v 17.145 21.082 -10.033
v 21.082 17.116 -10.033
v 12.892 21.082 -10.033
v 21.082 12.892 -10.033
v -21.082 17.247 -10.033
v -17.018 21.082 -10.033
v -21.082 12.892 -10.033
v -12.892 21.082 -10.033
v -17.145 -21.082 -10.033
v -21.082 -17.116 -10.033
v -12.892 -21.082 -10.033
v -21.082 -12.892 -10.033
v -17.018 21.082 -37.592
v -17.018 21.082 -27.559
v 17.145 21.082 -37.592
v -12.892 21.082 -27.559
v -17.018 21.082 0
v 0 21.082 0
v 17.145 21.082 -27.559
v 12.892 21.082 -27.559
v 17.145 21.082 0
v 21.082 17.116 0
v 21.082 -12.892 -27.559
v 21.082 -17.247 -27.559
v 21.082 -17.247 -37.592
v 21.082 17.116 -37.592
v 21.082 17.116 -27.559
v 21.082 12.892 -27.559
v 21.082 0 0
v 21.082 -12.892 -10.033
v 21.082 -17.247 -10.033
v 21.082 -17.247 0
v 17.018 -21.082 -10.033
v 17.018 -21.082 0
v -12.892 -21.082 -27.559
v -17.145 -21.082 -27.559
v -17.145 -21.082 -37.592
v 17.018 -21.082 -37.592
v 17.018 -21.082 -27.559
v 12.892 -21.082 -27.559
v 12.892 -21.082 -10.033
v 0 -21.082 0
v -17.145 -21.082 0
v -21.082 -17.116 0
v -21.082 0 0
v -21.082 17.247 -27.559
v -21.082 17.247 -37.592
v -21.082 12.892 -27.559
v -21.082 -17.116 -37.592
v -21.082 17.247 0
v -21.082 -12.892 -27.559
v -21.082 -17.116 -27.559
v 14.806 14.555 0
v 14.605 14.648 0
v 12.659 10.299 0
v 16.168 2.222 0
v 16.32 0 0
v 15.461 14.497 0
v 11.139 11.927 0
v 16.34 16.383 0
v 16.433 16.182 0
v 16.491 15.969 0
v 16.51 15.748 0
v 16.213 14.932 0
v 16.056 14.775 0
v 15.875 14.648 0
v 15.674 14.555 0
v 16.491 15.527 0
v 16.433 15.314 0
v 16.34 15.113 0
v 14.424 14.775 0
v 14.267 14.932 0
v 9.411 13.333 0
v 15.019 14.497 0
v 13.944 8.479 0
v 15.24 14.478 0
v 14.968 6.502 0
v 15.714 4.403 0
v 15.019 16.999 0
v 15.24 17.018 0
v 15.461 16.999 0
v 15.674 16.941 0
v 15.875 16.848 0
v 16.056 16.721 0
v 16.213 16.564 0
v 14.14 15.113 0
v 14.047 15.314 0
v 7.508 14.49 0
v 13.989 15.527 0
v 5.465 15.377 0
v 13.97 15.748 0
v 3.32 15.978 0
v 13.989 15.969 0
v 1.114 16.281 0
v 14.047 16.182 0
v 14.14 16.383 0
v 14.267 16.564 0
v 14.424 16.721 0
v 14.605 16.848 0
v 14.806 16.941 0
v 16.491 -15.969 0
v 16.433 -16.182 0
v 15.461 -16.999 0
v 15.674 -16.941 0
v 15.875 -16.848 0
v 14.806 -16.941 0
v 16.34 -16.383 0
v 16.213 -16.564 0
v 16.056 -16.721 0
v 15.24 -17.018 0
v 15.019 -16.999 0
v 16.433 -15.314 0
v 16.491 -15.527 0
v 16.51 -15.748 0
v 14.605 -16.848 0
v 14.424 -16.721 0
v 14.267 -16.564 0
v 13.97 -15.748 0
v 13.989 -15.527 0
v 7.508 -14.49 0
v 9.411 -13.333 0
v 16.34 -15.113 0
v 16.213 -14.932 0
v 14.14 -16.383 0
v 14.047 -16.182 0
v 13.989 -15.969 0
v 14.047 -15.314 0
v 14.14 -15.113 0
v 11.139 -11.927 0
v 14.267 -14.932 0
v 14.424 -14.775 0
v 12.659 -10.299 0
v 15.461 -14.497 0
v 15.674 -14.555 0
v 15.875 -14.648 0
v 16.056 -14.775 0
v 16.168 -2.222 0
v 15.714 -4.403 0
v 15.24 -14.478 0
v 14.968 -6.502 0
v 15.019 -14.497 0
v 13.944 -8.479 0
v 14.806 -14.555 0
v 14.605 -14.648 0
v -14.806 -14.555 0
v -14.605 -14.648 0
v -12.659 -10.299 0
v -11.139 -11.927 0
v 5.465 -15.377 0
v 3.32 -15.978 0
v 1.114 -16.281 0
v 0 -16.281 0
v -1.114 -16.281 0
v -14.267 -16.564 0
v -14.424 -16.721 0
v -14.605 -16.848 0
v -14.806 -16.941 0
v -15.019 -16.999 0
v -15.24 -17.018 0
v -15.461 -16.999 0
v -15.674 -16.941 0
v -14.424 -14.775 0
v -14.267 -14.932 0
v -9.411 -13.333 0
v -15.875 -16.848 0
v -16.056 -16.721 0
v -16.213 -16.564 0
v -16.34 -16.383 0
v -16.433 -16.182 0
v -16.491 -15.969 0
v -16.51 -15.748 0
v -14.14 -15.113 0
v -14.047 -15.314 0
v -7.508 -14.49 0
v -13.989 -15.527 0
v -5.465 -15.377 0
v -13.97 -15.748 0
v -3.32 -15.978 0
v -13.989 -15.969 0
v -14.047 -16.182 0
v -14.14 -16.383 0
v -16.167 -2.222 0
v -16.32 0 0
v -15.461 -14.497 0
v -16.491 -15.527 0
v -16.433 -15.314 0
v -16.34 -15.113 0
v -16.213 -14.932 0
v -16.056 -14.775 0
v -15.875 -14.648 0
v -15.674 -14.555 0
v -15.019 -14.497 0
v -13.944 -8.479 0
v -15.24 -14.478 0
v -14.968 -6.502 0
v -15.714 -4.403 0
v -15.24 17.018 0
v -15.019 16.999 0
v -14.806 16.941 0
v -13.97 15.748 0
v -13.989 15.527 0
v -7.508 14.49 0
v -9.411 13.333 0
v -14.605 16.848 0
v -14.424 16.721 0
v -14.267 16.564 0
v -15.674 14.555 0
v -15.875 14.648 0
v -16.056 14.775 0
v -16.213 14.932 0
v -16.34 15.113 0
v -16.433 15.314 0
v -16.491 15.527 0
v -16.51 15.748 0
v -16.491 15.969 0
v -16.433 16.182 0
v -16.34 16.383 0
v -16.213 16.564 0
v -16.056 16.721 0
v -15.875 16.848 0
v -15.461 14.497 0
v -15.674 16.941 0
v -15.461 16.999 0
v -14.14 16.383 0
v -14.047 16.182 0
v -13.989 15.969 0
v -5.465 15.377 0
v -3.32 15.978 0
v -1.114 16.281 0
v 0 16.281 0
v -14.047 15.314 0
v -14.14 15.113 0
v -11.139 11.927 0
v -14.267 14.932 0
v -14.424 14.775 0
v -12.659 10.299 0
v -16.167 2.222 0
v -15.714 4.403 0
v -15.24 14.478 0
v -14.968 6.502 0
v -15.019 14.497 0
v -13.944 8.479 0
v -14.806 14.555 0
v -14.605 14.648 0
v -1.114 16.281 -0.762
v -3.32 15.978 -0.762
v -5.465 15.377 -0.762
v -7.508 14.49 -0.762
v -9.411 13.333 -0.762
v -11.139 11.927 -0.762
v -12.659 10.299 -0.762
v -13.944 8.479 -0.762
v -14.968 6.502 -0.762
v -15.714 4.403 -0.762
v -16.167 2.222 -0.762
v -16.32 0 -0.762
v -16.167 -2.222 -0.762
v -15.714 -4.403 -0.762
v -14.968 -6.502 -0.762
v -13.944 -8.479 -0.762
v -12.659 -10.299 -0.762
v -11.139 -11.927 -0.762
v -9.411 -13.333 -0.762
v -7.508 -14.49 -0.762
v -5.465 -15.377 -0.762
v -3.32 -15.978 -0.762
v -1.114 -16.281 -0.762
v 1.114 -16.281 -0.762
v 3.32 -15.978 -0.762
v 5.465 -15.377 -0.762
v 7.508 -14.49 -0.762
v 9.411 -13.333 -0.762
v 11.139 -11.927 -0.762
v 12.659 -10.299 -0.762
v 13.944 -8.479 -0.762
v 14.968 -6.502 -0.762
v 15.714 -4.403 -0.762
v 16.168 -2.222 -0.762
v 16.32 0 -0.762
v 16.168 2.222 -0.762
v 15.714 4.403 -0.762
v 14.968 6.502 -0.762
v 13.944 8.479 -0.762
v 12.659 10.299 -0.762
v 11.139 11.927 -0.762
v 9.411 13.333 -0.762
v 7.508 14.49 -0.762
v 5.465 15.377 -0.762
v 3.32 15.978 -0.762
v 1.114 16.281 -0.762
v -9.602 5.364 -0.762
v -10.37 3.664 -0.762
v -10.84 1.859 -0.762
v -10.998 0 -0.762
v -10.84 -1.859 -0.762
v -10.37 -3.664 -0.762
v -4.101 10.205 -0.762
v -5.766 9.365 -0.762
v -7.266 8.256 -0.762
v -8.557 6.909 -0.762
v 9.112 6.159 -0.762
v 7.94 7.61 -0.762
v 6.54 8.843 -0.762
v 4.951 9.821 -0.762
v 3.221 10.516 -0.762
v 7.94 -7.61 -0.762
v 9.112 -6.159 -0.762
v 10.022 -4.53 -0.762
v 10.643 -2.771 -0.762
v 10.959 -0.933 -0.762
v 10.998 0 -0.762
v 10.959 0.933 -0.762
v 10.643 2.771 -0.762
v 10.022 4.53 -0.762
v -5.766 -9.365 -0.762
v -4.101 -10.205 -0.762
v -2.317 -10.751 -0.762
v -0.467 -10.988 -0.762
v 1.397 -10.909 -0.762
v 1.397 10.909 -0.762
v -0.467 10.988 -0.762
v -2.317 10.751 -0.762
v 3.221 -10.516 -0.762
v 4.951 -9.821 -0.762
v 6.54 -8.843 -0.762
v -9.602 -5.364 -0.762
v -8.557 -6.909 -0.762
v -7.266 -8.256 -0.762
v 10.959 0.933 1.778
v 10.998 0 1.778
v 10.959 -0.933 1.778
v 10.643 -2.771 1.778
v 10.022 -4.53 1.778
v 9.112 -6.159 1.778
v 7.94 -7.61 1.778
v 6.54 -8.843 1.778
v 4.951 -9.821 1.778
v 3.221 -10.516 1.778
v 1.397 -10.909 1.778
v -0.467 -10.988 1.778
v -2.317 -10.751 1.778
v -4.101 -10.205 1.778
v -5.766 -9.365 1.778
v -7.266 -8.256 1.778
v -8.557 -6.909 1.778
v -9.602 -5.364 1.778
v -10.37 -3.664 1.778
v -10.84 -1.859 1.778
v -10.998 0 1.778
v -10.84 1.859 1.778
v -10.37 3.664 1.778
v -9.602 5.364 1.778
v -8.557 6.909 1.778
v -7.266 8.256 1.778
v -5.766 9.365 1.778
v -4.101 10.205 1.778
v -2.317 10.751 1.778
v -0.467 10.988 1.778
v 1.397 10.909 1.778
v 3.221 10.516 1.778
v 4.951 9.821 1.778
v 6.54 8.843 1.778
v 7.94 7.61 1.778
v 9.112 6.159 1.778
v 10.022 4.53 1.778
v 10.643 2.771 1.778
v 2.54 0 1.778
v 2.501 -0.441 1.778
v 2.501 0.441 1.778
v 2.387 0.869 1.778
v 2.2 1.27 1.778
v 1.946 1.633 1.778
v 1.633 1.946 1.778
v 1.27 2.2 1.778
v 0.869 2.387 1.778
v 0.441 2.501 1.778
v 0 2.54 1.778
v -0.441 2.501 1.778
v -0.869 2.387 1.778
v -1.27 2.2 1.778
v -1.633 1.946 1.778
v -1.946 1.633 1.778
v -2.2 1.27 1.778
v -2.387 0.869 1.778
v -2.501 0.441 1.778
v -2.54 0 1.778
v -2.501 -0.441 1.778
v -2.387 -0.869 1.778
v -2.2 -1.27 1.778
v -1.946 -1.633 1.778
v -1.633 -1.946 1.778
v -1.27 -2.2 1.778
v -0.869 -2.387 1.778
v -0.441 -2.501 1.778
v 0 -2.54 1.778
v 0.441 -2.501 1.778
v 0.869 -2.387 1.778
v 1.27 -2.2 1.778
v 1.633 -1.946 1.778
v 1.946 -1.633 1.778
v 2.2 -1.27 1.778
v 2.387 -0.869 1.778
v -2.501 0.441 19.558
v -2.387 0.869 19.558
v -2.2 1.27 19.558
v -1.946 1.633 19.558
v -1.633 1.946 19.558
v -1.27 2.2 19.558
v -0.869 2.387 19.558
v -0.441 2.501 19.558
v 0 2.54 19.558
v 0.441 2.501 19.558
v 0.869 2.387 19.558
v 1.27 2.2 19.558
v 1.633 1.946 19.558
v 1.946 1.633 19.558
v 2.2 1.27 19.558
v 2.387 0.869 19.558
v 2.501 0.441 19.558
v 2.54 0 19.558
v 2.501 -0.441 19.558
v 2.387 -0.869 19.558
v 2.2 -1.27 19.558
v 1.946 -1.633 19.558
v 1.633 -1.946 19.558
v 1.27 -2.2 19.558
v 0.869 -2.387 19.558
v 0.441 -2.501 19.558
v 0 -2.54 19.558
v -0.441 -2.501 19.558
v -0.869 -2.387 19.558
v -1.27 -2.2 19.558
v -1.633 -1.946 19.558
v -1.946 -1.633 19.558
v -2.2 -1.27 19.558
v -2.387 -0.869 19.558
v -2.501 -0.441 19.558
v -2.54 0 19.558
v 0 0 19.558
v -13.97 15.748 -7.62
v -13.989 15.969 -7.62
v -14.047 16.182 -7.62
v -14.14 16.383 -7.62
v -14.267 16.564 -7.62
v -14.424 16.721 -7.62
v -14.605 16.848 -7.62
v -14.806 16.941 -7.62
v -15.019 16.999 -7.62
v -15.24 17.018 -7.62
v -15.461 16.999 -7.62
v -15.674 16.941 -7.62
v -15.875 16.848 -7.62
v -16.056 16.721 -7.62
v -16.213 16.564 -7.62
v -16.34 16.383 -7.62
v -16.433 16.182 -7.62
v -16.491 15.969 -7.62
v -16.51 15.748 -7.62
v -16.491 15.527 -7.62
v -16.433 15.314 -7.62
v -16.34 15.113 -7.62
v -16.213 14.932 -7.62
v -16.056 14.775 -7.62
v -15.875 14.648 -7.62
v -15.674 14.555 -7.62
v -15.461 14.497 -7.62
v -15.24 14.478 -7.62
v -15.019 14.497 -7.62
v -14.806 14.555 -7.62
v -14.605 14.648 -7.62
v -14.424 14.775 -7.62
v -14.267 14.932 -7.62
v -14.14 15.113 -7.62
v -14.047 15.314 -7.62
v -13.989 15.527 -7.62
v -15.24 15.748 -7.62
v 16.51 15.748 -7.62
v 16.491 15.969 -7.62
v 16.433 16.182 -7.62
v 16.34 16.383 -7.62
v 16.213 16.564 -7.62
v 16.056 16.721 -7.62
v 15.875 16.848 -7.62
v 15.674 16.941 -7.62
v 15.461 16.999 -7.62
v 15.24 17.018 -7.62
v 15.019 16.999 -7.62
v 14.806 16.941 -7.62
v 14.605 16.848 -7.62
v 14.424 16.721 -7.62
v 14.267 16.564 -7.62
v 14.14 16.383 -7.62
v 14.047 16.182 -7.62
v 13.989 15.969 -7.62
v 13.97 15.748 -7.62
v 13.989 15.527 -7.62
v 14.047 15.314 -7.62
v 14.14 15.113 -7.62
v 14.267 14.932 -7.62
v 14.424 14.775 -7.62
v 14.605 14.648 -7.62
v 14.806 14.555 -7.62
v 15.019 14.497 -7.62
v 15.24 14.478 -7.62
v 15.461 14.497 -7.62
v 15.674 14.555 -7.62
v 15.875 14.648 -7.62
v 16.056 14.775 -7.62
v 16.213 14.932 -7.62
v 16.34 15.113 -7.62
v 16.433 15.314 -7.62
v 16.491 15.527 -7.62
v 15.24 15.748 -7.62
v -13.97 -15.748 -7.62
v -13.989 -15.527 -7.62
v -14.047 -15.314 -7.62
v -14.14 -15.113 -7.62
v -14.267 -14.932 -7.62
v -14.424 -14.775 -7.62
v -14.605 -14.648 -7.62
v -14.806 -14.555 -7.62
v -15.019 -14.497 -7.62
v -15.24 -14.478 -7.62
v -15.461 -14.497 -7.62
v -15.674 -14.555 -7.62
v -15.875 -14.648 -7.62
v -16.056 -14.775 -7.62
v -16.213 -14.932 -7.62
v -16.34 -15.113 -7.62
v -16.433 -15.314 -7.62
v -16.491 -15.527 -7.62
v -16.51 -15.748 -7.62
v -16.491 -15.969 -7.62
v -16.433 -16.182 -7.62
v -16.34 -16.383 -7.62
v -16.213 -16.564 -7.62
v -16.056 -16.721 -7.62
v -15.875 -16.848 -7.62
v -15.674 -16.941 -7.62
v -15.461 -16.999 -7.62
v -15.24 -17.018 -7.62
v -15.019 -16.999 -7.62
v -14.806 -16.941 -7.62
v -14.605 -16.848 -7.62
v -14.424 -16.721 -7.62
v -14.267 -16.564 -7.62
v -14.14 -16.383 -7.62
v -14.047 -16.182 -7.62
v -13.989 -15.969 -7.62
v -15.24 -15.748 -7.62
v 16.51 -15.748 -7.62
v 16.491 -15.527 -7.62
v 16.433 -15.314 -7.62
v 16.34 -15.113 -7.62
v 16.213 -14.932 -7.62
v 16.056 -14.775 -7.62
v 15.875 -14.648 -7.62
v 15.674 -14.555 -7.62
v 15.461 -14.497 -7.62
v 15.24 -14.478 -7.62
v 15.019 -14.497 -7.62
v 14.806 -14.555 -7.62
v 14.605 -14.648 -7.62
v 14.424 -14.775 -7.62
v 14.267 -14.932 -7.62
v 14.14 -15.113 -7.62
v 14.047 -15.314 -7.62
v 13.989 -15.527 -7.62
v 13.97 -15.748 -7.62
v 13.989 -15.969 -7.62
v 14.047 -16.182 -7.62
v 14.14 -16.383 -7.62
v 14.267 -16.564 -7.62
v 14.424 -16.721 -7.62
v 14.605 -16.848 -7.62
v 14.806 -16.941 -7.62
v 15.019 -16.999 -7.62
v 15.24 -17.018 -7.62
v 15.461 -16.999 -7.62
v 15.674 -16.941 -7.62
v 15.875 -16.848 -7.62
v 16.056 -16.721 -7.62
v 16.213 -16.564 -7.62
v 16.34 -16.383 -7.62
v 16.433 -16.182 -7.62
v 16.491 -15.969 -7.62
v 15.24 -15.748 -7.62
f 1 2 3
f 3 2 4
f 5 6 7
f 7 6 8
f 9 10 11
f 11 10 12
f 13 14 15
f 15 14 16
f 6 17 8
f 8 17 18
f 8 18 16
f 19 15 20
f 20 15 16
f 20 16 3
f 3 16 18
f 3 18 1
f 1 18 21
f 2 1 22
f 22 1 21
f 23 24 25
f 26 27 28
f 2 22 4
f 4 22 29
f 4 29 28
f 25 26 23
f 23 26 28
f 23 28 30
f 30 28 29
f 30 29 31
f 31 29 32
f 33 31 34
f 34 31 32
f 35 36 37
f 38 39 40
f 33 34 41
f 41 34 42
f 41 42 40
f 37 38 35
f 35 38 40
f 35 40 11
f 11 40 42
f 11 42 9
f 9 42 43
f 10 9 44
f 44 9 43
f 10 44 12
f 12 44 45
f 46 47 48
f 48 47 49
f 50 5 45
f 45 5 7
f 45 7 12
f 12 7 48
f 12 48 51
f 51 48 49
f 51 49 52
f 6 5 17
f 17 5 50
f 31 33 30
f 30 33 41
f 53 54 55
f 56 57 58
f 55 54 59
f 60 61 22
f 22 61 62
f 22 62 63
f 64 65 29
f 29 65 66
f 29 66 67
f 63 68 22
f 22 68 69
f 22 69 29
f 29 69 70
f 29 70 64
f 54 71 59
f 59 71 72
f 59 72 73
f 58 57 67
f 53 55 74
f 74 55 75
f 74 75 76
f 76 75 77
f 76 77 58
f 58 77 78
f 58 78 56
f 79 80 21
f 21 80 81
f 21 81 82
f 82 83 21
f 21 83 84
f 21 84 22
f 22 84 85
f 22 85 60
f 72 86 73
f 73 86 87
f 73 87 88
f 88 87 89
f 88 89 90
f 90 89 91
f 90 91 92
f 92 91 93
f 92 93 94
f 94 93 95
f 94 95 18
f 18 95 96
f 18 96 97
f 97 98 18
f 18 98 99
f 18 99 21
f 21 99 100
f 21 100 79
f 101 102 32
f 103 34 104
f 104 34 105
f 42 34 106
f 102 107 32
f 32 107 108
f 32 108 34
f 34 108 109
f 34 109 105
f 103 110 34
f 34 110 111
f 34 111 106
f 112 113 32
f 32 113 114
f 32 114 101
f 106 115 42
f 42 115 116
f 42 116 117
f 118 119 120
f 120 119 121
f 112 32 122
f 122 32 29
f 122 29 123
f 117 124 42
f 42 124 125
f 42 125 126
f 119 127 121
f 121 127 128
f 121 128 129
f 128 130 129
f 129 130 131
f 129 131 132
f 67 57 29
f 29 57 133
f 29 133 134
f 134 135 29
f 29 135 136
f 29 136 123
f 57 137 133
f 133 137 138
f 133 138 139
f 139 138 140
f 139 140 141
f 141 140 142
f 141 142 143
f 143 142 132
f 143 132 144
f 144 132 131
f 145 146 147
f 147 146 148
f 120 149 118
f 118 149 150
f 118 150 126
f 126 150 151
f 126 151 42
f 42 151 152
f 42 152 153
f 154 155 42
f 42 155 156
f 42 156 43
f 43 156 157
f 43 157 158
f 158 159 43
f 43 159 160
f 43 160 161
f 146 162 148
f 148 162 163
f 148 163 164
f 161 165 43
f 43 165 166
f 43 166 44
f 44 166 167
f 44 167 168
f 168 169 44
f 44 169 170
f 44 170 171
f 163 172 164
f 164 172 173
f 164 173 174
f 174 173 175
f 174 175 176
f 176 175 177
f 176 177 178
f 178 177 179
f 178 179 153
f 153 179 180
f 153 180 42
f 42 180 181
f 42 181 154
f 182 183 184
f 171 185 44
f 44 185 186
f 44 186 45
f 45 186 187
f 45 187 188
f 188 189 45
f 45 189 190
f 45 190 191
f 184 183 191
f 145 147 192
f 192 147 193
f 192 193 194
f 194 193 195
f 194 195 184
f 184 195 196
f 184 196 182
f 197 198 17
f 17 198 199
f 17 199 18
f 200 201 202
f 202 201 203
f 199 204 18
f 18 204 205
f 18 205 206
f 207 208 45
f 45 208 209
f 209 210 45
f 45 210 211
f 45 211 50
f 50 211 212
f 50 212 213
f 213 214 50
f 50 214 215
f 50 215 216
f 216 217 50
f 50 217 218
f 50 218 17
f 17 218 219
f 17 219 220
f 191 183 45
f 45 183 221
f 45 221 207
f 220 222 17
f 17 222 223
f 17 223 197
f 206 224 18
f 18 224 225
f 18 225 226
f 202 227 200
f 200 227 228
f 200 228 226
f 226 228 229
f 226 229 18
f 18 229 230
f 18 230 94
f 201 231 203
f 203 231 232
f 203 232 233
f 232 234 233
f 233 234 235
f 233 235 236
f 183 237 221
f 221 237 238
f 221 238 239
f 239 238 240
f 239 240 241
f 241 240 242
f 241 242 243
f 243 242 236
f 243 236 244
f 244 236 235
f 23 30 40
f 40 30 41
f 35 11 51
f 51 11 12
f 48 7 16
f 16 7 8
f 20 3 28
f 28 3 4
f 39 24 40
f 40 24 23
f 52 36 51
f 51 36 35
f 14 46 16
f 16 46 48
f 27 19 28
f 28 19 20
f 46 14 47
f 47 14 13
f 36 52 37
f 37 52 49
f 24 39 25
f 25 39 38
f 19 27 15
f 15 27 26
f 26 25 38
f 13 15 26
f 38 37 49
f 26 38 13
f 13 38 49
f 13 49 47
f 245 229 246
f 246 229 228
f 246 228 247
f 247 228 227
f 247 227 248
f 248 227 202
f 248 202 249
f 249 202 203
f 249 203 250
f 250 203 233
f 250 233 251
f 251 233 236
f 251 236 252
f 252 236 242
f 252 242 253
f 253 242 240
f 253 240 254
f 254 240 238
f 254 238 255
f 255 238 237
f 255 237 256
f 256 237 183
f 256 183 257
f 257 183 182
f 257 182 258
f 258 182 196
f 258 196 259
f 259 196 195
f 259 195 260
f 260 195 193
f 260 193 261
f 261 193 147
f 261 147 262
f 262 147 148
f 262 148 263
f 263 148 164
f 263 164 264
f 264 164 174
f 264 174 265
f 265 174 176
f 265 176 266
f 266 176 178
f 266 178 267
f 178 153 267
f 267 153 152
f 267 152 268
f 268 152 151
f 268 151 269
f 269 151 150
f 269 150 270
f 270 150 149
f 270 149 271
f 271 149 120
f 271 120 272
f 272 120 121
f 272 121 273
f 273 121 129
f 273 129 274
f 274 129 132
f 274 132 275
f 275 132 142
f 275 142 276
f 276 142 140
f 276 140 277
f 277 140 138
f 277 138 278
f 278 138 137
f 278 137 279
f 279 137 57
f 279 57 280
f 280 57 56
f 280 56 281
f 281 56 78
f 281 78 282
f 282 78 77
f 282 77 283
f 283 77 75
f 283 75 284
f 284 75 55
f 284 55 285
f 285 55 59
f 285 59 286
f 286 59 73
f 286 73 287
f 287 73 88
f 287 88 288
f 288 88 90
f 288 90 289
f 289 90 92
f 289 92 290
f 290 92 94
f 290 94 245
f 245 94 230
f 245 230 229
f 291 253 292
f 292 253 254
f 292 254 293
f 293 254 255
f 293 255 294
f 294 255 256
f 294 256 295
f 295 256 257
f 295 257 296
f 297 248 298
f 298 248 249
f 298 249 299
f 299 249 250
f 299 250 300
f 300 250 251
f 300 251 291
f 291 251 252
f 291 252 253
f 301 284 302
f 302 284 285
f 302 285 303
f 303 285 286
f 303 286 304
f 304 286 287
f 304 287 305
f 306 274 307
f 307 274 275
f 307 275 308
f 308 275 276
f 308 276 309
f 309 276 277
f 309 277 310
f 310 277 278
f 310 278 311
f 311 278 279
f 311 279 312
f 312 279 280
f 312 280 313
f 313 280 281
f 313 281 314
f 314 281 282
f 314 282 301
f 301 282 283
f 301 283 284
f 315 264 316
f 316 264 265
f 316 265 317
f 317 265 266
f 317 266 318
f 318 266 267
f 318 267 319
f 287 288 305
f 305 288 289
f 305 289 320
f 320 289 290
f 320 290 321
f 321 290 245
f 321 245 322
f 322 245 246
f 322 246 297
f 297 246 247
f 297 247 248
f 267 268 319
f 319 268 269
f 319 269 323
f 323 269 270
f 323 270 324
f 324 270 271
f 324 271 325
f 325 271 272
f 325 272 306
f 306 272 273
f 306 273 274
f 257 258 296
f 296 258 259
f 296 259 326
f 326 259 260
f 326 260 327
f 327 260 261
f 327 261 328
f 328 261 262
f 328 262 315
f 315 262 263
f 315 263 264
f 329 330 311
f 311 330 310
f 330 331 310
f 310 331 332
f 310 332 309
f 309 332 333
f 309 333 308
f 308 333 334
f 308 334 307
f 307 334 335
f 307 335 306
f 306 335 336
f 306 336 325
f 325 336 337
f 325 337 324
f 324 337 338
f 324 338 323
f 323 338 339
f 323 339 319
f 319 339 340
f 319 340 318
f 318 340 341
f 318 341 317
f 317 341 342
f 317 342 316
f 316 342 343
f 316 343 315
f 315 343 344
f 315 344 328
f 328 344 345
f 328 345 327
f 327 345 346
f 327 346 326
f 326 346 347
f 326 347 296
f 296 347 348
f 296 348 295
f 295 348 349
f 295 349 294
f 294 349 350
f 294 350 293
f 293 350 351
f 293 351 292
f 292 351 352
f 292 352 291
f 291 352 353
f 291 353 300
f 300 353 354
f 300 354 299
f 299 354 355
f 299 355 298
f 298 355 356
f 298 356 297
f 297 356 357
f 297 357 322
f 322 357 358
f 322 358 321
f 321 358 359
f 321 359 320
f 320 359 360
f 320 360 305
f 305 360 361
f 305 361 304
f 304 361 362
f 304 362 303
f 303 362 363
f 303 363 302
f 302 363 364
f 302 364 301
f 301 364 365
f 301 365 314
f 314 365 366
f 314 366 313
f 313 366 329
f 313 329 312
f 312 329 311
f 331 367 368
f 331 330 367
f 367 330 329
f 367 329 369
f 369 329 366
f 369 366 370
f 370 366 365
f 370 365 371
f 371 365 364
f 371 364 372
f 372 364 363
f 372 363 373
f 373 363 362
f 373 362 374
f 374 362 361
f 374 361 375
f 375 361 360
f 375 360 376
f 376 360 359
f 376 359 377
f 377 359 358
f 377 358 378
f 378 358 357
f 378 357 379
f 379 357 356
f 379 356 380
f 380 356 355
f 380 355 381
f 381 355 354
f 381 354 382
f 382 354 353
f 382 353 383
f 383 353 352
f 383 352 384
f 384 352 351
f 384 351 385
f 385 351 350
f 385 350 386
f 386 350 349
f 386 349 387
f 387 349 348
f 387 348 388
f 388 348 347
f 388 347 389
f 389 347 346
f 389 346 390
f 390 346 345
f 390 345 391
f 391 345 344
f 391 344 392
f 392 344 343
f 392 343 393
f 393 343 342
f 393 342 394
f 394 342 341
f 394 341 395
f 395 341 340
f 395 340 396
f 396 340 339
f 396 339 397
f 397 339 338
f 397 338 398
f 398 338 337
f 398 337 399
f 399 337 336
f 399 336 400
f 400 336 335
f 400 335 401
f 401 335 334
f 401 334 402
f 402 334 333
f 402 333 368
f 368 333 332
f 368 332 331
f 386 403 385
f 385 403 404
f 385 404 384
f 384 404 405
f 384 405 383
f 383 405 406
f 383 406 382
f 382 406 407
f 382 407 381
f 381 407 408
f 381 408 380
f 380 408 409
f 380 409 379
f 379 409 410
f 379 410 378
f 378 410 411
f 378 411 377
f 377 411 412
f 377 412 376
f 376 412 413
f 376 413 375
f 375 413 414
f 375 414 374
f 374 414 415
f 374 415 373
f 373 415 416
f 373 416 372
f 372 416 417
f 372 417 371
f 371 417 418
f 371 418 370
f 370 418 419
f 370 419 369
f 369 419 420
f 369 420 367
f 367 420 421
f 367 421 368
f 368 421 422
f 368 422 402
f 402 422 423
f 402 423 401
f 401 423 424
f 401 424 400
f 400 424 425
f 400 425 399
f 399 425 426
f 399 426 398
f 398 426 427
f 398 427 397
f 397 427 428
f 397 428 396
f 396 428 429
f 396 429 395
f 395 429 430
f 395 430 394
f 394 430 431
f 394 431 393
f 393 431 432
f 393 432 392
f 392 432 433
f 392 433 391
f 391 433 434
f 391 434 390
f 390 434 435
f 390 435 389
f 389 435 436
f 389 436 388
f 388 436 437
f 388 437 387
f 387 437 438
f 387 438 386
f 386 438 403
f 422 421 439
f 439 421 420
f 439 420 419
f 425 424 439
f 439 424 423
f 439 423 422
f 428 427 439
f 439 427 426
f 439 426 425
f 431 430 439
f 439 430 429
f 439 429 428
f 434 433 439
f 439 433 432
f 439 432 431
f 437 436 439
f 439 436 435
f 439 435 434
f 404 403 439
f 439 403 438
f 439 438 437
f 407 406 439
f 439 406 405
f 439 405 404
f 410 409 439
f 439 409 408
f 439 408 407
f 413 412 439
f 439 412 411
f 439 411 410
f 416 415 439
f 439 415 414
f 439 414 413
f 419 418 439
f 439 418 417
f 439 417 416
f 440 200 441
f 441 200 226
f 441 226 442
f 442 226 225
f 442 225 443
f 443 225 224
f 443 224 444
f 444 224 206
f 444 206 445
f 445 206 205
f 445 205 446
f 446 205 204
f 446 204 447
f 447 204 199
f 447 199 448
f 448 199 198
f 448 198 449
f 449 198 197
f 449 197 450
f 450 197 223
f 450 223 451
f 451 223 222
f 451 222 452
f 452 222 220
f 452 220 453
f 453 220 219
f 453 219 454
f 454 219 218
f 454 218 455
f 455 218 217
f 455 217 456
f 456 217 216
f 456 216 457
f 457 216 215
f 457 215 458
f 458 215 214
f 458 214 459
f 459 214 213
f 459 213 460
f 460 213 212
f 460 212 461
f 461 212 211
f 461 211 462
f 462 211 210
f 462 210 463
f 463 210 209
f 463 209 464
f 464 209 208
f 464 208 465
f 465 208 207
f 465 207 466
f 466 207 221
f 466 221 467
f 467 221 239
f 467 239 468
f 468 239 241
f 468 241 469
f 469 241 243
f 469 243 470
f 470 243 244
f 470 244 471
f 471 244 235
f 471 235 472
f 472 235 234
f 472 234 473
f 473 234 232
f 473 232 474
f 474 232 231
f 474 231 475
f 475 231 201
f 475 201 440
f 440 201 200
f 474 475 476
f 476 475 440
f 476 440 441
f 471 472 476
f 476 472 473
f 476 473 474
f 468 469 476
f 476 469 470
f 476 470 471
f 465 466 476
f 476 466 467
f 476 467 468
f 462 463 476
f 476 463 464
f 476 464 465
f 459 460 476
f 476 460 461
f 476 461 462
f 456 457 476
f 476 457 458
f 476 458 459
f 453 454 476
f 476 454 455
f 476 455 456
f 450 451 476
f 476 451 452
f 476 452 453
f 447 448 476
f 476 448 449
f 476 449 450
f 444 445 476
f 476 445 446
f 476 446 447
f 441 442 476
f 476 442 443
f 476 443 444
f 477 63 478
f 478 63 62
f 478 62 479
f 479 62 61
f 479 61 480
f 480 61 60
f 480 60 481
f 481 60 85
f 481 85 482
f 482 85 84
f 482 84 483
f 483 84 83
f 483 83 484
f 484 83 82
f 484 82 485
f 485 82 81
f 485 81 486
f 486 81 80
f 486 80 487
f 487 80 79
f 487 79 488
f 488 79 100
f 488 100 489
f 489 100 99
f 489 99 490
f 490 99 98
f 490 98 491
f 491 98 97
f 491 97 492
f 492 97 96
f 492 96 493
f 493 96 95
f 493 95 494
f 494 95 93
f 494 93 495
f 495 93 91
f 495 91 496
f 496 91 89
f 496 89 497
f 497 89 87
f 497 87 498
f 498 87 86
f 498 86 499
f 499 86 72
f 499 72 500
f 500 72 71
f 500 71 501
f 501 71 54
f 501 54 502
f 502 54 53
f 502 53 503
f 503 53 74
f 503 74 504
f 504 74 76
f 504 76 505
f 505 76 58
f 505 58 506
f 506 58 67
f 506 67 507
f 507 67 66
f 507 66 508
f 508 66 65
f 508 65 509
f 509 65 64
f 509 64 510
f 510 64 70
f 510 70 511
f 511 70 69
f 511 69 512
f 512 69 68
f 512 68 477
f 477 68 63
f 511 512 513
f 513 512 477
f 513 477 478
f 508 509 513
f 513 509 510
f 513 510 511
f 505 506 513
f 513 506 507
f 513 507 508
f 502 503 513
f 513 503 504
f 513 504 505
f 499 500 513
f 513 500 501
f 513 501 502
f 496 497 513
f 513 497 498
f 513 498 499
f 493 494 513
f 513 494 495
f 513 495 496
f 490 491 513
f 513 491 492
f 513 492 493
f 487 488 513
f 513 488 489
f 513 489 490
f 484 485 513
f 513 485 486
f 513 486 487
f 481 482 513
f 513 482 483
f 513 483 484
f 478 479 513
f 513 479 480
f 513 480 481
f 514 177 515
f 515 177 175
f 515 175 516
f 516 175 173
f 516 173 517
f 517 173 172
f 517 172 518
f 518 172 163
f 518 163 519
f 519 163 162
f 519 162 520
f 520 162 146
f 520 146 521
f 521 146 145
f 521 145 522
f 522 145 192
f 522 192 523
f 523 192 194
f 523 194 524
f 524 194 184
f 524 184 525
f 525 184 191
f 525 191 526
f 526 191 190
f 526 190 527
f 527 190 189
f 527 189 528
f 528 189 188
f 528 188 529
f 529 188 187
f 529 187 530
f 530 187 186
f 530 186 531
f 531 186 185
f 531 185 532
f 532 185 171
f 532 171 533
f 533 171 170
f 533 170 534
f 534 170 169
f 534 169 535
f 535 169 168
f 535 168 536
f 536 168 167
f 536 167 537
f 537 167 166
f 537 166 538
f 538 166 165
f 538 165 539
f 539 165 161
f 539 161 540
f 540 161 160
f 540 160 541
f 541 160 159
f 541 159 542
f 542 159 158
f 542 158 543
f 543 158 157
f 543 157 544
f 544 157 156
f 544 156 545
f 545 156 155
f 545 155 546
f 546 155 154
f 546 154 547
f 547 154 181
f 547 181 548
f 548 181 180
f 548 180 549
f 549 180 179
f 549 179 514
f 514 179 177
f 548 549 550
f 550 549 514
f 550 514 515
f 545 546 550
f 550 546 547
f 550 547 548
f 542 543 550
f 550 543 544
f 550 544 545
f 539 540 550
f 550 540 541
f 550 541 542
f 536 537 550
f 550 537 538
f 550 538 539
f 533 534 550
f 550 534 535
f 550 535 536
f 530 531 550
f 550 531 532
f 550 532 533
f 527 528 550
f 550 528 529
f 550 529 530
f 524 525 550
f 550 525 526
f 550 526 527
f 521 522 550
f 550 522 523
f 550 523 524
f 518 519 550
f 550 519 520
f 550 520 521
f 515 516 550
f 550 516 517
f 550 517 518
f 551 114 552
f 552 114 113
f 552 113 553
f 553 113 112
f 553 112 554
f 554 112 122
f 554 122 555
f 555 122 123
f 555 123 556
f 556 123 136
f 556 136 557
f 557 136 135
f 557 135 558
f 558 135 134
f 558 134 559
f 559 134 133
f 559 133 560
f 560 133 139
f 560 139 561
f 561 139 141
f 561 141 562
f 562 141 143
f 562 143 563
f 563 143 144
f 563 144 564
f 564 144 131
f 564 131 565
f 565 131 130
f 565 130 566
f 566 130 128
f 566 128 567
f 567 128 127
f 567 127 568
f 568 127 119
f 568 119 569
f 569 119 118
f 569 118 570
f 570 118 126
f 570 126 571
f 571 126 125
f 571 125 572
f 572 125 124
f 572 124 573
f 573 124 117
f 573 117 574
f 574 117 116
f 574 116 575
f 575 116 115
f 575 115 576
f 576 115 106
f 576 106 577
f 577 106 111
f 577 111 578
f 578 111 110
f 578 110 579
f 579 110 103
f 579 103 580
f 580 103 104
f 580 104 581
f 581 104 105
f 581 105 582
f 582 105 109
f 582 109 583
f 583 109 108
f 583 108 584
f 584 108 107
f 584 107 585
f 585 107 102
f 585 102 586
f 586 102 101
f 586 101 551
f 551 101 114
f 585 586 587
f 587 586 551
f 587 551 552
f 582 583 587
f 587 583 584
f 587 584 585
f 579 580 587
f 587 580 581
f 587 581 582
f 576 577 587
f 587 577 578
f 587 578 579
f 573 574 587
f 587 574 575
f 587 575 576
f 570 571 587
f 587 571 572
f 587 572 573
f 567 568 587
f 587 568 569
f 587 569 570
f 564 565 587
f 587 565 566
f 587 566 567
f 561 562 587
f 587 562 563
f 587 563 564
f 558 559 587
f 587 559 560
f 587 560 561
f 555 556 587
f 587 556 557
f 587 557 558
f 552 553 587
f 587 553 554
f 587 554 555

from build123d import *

# Parameters (mm, degrees)
BOSS_EXTRUDE1_DEPTH = 10.033
BOSS_EXTRUDE2_DEPTH = 18.034
SKETCH3_R           = 16.3195
CUT_EXTRUDE1_DEPTH  = 0.762
SKETCH4_R           = 10.9982
BOSS_EXTRUDE3_DEPTH = 2.54
SKETCH5_R           = 2.54
BOSS_EXTRUDE4_DEPTH = 17.78
SKETCH6_R           = 1.27
CUT_EXTRUDE2_DEPTH  = 7.62


with BuildPart() as part:
    # Sketch1 → Boss-Extrude1 (new body)
    with BuildSketch(Plane.XY):
        Polygon((-21.082, 17.246684107), (-17.018, 21.082), (17.145, 21.082), (21.082, 17.116426271), (21.082, -17.246684107), (17.018, -21.082), (-17.145, -21.082), (-21.082, -17.116426271), align=None)
    boss_extrude1 = extrude(amount=-BOSS_EXTRUDE1_DEPTH)

    # Sketch2 → Boss-Extrude2 (add)
    with BuildSketch(Plane(origin=(0, 0, -10.033), x_dir=(-1, 0, 0), z_dir=(0, 0, -1))):
        Polygon((-21.082, 12.892006418), (-12.892006418, 21.082), (12.892006418, 21.082), (21.082, 12.892006418), (21.082, -12.892006418), (12.892006418, -21.082), (-12.892006418, -21.082), (-21.082, -12.892006418), align=None)
    extrude(amount=BOSS_EXTRUDE2_DEPTH)

    # Mirror2: Boss-Extrude1 across plane
    add(boss_extrude1.mirror(Plane.XY.offset(-18.796)))

    # Sketch3 → Cut-Extrude1 (cut)
    with BuildSketch(Plane.XY):
        Circle(SKETCH3_R)
    extrude(amount=-CUT_EXTRUDE1_DEPTH, mode=Mode.SUBTRACT)

    # Sketch4 → Boss-Extrude3 (add)
    with BuildSketch(Plane.XY.offset(-0.762)):
        Circle(SKETCH4_R)
    extrude(amount=BOSS_EXTRUDE3_DEPTH)

    # Sketch5 → Boss-Extrude4 (add)
    with BuildSketch(Plane.XY.offset(1.778)):
        Circle(SKETCH5_R)
    extrude(amount=BOSS_EXTRUDE4_DEPTH)

    # Sketch6 → Cut-Extrude2 (cut)
    with BuildSketch(Plane.XY):
        with Locations((-15.24, 15.748)):
            Circle(SKETCH6_R)
        with Locations((15.24, 15.748)):
            Circle(SKETCH6_R)
    cut_extrude2 = extrude(amount=-CUT_EXTRUDE2_DEPTH, mode=Mode.SUBTRACT)

    # Mirror3: Cut-Extrude2 across plane
    add(cut_extrude2.mirror(Plane.ZX), mode=Mode.SUBTRACT)


solid = part.part
